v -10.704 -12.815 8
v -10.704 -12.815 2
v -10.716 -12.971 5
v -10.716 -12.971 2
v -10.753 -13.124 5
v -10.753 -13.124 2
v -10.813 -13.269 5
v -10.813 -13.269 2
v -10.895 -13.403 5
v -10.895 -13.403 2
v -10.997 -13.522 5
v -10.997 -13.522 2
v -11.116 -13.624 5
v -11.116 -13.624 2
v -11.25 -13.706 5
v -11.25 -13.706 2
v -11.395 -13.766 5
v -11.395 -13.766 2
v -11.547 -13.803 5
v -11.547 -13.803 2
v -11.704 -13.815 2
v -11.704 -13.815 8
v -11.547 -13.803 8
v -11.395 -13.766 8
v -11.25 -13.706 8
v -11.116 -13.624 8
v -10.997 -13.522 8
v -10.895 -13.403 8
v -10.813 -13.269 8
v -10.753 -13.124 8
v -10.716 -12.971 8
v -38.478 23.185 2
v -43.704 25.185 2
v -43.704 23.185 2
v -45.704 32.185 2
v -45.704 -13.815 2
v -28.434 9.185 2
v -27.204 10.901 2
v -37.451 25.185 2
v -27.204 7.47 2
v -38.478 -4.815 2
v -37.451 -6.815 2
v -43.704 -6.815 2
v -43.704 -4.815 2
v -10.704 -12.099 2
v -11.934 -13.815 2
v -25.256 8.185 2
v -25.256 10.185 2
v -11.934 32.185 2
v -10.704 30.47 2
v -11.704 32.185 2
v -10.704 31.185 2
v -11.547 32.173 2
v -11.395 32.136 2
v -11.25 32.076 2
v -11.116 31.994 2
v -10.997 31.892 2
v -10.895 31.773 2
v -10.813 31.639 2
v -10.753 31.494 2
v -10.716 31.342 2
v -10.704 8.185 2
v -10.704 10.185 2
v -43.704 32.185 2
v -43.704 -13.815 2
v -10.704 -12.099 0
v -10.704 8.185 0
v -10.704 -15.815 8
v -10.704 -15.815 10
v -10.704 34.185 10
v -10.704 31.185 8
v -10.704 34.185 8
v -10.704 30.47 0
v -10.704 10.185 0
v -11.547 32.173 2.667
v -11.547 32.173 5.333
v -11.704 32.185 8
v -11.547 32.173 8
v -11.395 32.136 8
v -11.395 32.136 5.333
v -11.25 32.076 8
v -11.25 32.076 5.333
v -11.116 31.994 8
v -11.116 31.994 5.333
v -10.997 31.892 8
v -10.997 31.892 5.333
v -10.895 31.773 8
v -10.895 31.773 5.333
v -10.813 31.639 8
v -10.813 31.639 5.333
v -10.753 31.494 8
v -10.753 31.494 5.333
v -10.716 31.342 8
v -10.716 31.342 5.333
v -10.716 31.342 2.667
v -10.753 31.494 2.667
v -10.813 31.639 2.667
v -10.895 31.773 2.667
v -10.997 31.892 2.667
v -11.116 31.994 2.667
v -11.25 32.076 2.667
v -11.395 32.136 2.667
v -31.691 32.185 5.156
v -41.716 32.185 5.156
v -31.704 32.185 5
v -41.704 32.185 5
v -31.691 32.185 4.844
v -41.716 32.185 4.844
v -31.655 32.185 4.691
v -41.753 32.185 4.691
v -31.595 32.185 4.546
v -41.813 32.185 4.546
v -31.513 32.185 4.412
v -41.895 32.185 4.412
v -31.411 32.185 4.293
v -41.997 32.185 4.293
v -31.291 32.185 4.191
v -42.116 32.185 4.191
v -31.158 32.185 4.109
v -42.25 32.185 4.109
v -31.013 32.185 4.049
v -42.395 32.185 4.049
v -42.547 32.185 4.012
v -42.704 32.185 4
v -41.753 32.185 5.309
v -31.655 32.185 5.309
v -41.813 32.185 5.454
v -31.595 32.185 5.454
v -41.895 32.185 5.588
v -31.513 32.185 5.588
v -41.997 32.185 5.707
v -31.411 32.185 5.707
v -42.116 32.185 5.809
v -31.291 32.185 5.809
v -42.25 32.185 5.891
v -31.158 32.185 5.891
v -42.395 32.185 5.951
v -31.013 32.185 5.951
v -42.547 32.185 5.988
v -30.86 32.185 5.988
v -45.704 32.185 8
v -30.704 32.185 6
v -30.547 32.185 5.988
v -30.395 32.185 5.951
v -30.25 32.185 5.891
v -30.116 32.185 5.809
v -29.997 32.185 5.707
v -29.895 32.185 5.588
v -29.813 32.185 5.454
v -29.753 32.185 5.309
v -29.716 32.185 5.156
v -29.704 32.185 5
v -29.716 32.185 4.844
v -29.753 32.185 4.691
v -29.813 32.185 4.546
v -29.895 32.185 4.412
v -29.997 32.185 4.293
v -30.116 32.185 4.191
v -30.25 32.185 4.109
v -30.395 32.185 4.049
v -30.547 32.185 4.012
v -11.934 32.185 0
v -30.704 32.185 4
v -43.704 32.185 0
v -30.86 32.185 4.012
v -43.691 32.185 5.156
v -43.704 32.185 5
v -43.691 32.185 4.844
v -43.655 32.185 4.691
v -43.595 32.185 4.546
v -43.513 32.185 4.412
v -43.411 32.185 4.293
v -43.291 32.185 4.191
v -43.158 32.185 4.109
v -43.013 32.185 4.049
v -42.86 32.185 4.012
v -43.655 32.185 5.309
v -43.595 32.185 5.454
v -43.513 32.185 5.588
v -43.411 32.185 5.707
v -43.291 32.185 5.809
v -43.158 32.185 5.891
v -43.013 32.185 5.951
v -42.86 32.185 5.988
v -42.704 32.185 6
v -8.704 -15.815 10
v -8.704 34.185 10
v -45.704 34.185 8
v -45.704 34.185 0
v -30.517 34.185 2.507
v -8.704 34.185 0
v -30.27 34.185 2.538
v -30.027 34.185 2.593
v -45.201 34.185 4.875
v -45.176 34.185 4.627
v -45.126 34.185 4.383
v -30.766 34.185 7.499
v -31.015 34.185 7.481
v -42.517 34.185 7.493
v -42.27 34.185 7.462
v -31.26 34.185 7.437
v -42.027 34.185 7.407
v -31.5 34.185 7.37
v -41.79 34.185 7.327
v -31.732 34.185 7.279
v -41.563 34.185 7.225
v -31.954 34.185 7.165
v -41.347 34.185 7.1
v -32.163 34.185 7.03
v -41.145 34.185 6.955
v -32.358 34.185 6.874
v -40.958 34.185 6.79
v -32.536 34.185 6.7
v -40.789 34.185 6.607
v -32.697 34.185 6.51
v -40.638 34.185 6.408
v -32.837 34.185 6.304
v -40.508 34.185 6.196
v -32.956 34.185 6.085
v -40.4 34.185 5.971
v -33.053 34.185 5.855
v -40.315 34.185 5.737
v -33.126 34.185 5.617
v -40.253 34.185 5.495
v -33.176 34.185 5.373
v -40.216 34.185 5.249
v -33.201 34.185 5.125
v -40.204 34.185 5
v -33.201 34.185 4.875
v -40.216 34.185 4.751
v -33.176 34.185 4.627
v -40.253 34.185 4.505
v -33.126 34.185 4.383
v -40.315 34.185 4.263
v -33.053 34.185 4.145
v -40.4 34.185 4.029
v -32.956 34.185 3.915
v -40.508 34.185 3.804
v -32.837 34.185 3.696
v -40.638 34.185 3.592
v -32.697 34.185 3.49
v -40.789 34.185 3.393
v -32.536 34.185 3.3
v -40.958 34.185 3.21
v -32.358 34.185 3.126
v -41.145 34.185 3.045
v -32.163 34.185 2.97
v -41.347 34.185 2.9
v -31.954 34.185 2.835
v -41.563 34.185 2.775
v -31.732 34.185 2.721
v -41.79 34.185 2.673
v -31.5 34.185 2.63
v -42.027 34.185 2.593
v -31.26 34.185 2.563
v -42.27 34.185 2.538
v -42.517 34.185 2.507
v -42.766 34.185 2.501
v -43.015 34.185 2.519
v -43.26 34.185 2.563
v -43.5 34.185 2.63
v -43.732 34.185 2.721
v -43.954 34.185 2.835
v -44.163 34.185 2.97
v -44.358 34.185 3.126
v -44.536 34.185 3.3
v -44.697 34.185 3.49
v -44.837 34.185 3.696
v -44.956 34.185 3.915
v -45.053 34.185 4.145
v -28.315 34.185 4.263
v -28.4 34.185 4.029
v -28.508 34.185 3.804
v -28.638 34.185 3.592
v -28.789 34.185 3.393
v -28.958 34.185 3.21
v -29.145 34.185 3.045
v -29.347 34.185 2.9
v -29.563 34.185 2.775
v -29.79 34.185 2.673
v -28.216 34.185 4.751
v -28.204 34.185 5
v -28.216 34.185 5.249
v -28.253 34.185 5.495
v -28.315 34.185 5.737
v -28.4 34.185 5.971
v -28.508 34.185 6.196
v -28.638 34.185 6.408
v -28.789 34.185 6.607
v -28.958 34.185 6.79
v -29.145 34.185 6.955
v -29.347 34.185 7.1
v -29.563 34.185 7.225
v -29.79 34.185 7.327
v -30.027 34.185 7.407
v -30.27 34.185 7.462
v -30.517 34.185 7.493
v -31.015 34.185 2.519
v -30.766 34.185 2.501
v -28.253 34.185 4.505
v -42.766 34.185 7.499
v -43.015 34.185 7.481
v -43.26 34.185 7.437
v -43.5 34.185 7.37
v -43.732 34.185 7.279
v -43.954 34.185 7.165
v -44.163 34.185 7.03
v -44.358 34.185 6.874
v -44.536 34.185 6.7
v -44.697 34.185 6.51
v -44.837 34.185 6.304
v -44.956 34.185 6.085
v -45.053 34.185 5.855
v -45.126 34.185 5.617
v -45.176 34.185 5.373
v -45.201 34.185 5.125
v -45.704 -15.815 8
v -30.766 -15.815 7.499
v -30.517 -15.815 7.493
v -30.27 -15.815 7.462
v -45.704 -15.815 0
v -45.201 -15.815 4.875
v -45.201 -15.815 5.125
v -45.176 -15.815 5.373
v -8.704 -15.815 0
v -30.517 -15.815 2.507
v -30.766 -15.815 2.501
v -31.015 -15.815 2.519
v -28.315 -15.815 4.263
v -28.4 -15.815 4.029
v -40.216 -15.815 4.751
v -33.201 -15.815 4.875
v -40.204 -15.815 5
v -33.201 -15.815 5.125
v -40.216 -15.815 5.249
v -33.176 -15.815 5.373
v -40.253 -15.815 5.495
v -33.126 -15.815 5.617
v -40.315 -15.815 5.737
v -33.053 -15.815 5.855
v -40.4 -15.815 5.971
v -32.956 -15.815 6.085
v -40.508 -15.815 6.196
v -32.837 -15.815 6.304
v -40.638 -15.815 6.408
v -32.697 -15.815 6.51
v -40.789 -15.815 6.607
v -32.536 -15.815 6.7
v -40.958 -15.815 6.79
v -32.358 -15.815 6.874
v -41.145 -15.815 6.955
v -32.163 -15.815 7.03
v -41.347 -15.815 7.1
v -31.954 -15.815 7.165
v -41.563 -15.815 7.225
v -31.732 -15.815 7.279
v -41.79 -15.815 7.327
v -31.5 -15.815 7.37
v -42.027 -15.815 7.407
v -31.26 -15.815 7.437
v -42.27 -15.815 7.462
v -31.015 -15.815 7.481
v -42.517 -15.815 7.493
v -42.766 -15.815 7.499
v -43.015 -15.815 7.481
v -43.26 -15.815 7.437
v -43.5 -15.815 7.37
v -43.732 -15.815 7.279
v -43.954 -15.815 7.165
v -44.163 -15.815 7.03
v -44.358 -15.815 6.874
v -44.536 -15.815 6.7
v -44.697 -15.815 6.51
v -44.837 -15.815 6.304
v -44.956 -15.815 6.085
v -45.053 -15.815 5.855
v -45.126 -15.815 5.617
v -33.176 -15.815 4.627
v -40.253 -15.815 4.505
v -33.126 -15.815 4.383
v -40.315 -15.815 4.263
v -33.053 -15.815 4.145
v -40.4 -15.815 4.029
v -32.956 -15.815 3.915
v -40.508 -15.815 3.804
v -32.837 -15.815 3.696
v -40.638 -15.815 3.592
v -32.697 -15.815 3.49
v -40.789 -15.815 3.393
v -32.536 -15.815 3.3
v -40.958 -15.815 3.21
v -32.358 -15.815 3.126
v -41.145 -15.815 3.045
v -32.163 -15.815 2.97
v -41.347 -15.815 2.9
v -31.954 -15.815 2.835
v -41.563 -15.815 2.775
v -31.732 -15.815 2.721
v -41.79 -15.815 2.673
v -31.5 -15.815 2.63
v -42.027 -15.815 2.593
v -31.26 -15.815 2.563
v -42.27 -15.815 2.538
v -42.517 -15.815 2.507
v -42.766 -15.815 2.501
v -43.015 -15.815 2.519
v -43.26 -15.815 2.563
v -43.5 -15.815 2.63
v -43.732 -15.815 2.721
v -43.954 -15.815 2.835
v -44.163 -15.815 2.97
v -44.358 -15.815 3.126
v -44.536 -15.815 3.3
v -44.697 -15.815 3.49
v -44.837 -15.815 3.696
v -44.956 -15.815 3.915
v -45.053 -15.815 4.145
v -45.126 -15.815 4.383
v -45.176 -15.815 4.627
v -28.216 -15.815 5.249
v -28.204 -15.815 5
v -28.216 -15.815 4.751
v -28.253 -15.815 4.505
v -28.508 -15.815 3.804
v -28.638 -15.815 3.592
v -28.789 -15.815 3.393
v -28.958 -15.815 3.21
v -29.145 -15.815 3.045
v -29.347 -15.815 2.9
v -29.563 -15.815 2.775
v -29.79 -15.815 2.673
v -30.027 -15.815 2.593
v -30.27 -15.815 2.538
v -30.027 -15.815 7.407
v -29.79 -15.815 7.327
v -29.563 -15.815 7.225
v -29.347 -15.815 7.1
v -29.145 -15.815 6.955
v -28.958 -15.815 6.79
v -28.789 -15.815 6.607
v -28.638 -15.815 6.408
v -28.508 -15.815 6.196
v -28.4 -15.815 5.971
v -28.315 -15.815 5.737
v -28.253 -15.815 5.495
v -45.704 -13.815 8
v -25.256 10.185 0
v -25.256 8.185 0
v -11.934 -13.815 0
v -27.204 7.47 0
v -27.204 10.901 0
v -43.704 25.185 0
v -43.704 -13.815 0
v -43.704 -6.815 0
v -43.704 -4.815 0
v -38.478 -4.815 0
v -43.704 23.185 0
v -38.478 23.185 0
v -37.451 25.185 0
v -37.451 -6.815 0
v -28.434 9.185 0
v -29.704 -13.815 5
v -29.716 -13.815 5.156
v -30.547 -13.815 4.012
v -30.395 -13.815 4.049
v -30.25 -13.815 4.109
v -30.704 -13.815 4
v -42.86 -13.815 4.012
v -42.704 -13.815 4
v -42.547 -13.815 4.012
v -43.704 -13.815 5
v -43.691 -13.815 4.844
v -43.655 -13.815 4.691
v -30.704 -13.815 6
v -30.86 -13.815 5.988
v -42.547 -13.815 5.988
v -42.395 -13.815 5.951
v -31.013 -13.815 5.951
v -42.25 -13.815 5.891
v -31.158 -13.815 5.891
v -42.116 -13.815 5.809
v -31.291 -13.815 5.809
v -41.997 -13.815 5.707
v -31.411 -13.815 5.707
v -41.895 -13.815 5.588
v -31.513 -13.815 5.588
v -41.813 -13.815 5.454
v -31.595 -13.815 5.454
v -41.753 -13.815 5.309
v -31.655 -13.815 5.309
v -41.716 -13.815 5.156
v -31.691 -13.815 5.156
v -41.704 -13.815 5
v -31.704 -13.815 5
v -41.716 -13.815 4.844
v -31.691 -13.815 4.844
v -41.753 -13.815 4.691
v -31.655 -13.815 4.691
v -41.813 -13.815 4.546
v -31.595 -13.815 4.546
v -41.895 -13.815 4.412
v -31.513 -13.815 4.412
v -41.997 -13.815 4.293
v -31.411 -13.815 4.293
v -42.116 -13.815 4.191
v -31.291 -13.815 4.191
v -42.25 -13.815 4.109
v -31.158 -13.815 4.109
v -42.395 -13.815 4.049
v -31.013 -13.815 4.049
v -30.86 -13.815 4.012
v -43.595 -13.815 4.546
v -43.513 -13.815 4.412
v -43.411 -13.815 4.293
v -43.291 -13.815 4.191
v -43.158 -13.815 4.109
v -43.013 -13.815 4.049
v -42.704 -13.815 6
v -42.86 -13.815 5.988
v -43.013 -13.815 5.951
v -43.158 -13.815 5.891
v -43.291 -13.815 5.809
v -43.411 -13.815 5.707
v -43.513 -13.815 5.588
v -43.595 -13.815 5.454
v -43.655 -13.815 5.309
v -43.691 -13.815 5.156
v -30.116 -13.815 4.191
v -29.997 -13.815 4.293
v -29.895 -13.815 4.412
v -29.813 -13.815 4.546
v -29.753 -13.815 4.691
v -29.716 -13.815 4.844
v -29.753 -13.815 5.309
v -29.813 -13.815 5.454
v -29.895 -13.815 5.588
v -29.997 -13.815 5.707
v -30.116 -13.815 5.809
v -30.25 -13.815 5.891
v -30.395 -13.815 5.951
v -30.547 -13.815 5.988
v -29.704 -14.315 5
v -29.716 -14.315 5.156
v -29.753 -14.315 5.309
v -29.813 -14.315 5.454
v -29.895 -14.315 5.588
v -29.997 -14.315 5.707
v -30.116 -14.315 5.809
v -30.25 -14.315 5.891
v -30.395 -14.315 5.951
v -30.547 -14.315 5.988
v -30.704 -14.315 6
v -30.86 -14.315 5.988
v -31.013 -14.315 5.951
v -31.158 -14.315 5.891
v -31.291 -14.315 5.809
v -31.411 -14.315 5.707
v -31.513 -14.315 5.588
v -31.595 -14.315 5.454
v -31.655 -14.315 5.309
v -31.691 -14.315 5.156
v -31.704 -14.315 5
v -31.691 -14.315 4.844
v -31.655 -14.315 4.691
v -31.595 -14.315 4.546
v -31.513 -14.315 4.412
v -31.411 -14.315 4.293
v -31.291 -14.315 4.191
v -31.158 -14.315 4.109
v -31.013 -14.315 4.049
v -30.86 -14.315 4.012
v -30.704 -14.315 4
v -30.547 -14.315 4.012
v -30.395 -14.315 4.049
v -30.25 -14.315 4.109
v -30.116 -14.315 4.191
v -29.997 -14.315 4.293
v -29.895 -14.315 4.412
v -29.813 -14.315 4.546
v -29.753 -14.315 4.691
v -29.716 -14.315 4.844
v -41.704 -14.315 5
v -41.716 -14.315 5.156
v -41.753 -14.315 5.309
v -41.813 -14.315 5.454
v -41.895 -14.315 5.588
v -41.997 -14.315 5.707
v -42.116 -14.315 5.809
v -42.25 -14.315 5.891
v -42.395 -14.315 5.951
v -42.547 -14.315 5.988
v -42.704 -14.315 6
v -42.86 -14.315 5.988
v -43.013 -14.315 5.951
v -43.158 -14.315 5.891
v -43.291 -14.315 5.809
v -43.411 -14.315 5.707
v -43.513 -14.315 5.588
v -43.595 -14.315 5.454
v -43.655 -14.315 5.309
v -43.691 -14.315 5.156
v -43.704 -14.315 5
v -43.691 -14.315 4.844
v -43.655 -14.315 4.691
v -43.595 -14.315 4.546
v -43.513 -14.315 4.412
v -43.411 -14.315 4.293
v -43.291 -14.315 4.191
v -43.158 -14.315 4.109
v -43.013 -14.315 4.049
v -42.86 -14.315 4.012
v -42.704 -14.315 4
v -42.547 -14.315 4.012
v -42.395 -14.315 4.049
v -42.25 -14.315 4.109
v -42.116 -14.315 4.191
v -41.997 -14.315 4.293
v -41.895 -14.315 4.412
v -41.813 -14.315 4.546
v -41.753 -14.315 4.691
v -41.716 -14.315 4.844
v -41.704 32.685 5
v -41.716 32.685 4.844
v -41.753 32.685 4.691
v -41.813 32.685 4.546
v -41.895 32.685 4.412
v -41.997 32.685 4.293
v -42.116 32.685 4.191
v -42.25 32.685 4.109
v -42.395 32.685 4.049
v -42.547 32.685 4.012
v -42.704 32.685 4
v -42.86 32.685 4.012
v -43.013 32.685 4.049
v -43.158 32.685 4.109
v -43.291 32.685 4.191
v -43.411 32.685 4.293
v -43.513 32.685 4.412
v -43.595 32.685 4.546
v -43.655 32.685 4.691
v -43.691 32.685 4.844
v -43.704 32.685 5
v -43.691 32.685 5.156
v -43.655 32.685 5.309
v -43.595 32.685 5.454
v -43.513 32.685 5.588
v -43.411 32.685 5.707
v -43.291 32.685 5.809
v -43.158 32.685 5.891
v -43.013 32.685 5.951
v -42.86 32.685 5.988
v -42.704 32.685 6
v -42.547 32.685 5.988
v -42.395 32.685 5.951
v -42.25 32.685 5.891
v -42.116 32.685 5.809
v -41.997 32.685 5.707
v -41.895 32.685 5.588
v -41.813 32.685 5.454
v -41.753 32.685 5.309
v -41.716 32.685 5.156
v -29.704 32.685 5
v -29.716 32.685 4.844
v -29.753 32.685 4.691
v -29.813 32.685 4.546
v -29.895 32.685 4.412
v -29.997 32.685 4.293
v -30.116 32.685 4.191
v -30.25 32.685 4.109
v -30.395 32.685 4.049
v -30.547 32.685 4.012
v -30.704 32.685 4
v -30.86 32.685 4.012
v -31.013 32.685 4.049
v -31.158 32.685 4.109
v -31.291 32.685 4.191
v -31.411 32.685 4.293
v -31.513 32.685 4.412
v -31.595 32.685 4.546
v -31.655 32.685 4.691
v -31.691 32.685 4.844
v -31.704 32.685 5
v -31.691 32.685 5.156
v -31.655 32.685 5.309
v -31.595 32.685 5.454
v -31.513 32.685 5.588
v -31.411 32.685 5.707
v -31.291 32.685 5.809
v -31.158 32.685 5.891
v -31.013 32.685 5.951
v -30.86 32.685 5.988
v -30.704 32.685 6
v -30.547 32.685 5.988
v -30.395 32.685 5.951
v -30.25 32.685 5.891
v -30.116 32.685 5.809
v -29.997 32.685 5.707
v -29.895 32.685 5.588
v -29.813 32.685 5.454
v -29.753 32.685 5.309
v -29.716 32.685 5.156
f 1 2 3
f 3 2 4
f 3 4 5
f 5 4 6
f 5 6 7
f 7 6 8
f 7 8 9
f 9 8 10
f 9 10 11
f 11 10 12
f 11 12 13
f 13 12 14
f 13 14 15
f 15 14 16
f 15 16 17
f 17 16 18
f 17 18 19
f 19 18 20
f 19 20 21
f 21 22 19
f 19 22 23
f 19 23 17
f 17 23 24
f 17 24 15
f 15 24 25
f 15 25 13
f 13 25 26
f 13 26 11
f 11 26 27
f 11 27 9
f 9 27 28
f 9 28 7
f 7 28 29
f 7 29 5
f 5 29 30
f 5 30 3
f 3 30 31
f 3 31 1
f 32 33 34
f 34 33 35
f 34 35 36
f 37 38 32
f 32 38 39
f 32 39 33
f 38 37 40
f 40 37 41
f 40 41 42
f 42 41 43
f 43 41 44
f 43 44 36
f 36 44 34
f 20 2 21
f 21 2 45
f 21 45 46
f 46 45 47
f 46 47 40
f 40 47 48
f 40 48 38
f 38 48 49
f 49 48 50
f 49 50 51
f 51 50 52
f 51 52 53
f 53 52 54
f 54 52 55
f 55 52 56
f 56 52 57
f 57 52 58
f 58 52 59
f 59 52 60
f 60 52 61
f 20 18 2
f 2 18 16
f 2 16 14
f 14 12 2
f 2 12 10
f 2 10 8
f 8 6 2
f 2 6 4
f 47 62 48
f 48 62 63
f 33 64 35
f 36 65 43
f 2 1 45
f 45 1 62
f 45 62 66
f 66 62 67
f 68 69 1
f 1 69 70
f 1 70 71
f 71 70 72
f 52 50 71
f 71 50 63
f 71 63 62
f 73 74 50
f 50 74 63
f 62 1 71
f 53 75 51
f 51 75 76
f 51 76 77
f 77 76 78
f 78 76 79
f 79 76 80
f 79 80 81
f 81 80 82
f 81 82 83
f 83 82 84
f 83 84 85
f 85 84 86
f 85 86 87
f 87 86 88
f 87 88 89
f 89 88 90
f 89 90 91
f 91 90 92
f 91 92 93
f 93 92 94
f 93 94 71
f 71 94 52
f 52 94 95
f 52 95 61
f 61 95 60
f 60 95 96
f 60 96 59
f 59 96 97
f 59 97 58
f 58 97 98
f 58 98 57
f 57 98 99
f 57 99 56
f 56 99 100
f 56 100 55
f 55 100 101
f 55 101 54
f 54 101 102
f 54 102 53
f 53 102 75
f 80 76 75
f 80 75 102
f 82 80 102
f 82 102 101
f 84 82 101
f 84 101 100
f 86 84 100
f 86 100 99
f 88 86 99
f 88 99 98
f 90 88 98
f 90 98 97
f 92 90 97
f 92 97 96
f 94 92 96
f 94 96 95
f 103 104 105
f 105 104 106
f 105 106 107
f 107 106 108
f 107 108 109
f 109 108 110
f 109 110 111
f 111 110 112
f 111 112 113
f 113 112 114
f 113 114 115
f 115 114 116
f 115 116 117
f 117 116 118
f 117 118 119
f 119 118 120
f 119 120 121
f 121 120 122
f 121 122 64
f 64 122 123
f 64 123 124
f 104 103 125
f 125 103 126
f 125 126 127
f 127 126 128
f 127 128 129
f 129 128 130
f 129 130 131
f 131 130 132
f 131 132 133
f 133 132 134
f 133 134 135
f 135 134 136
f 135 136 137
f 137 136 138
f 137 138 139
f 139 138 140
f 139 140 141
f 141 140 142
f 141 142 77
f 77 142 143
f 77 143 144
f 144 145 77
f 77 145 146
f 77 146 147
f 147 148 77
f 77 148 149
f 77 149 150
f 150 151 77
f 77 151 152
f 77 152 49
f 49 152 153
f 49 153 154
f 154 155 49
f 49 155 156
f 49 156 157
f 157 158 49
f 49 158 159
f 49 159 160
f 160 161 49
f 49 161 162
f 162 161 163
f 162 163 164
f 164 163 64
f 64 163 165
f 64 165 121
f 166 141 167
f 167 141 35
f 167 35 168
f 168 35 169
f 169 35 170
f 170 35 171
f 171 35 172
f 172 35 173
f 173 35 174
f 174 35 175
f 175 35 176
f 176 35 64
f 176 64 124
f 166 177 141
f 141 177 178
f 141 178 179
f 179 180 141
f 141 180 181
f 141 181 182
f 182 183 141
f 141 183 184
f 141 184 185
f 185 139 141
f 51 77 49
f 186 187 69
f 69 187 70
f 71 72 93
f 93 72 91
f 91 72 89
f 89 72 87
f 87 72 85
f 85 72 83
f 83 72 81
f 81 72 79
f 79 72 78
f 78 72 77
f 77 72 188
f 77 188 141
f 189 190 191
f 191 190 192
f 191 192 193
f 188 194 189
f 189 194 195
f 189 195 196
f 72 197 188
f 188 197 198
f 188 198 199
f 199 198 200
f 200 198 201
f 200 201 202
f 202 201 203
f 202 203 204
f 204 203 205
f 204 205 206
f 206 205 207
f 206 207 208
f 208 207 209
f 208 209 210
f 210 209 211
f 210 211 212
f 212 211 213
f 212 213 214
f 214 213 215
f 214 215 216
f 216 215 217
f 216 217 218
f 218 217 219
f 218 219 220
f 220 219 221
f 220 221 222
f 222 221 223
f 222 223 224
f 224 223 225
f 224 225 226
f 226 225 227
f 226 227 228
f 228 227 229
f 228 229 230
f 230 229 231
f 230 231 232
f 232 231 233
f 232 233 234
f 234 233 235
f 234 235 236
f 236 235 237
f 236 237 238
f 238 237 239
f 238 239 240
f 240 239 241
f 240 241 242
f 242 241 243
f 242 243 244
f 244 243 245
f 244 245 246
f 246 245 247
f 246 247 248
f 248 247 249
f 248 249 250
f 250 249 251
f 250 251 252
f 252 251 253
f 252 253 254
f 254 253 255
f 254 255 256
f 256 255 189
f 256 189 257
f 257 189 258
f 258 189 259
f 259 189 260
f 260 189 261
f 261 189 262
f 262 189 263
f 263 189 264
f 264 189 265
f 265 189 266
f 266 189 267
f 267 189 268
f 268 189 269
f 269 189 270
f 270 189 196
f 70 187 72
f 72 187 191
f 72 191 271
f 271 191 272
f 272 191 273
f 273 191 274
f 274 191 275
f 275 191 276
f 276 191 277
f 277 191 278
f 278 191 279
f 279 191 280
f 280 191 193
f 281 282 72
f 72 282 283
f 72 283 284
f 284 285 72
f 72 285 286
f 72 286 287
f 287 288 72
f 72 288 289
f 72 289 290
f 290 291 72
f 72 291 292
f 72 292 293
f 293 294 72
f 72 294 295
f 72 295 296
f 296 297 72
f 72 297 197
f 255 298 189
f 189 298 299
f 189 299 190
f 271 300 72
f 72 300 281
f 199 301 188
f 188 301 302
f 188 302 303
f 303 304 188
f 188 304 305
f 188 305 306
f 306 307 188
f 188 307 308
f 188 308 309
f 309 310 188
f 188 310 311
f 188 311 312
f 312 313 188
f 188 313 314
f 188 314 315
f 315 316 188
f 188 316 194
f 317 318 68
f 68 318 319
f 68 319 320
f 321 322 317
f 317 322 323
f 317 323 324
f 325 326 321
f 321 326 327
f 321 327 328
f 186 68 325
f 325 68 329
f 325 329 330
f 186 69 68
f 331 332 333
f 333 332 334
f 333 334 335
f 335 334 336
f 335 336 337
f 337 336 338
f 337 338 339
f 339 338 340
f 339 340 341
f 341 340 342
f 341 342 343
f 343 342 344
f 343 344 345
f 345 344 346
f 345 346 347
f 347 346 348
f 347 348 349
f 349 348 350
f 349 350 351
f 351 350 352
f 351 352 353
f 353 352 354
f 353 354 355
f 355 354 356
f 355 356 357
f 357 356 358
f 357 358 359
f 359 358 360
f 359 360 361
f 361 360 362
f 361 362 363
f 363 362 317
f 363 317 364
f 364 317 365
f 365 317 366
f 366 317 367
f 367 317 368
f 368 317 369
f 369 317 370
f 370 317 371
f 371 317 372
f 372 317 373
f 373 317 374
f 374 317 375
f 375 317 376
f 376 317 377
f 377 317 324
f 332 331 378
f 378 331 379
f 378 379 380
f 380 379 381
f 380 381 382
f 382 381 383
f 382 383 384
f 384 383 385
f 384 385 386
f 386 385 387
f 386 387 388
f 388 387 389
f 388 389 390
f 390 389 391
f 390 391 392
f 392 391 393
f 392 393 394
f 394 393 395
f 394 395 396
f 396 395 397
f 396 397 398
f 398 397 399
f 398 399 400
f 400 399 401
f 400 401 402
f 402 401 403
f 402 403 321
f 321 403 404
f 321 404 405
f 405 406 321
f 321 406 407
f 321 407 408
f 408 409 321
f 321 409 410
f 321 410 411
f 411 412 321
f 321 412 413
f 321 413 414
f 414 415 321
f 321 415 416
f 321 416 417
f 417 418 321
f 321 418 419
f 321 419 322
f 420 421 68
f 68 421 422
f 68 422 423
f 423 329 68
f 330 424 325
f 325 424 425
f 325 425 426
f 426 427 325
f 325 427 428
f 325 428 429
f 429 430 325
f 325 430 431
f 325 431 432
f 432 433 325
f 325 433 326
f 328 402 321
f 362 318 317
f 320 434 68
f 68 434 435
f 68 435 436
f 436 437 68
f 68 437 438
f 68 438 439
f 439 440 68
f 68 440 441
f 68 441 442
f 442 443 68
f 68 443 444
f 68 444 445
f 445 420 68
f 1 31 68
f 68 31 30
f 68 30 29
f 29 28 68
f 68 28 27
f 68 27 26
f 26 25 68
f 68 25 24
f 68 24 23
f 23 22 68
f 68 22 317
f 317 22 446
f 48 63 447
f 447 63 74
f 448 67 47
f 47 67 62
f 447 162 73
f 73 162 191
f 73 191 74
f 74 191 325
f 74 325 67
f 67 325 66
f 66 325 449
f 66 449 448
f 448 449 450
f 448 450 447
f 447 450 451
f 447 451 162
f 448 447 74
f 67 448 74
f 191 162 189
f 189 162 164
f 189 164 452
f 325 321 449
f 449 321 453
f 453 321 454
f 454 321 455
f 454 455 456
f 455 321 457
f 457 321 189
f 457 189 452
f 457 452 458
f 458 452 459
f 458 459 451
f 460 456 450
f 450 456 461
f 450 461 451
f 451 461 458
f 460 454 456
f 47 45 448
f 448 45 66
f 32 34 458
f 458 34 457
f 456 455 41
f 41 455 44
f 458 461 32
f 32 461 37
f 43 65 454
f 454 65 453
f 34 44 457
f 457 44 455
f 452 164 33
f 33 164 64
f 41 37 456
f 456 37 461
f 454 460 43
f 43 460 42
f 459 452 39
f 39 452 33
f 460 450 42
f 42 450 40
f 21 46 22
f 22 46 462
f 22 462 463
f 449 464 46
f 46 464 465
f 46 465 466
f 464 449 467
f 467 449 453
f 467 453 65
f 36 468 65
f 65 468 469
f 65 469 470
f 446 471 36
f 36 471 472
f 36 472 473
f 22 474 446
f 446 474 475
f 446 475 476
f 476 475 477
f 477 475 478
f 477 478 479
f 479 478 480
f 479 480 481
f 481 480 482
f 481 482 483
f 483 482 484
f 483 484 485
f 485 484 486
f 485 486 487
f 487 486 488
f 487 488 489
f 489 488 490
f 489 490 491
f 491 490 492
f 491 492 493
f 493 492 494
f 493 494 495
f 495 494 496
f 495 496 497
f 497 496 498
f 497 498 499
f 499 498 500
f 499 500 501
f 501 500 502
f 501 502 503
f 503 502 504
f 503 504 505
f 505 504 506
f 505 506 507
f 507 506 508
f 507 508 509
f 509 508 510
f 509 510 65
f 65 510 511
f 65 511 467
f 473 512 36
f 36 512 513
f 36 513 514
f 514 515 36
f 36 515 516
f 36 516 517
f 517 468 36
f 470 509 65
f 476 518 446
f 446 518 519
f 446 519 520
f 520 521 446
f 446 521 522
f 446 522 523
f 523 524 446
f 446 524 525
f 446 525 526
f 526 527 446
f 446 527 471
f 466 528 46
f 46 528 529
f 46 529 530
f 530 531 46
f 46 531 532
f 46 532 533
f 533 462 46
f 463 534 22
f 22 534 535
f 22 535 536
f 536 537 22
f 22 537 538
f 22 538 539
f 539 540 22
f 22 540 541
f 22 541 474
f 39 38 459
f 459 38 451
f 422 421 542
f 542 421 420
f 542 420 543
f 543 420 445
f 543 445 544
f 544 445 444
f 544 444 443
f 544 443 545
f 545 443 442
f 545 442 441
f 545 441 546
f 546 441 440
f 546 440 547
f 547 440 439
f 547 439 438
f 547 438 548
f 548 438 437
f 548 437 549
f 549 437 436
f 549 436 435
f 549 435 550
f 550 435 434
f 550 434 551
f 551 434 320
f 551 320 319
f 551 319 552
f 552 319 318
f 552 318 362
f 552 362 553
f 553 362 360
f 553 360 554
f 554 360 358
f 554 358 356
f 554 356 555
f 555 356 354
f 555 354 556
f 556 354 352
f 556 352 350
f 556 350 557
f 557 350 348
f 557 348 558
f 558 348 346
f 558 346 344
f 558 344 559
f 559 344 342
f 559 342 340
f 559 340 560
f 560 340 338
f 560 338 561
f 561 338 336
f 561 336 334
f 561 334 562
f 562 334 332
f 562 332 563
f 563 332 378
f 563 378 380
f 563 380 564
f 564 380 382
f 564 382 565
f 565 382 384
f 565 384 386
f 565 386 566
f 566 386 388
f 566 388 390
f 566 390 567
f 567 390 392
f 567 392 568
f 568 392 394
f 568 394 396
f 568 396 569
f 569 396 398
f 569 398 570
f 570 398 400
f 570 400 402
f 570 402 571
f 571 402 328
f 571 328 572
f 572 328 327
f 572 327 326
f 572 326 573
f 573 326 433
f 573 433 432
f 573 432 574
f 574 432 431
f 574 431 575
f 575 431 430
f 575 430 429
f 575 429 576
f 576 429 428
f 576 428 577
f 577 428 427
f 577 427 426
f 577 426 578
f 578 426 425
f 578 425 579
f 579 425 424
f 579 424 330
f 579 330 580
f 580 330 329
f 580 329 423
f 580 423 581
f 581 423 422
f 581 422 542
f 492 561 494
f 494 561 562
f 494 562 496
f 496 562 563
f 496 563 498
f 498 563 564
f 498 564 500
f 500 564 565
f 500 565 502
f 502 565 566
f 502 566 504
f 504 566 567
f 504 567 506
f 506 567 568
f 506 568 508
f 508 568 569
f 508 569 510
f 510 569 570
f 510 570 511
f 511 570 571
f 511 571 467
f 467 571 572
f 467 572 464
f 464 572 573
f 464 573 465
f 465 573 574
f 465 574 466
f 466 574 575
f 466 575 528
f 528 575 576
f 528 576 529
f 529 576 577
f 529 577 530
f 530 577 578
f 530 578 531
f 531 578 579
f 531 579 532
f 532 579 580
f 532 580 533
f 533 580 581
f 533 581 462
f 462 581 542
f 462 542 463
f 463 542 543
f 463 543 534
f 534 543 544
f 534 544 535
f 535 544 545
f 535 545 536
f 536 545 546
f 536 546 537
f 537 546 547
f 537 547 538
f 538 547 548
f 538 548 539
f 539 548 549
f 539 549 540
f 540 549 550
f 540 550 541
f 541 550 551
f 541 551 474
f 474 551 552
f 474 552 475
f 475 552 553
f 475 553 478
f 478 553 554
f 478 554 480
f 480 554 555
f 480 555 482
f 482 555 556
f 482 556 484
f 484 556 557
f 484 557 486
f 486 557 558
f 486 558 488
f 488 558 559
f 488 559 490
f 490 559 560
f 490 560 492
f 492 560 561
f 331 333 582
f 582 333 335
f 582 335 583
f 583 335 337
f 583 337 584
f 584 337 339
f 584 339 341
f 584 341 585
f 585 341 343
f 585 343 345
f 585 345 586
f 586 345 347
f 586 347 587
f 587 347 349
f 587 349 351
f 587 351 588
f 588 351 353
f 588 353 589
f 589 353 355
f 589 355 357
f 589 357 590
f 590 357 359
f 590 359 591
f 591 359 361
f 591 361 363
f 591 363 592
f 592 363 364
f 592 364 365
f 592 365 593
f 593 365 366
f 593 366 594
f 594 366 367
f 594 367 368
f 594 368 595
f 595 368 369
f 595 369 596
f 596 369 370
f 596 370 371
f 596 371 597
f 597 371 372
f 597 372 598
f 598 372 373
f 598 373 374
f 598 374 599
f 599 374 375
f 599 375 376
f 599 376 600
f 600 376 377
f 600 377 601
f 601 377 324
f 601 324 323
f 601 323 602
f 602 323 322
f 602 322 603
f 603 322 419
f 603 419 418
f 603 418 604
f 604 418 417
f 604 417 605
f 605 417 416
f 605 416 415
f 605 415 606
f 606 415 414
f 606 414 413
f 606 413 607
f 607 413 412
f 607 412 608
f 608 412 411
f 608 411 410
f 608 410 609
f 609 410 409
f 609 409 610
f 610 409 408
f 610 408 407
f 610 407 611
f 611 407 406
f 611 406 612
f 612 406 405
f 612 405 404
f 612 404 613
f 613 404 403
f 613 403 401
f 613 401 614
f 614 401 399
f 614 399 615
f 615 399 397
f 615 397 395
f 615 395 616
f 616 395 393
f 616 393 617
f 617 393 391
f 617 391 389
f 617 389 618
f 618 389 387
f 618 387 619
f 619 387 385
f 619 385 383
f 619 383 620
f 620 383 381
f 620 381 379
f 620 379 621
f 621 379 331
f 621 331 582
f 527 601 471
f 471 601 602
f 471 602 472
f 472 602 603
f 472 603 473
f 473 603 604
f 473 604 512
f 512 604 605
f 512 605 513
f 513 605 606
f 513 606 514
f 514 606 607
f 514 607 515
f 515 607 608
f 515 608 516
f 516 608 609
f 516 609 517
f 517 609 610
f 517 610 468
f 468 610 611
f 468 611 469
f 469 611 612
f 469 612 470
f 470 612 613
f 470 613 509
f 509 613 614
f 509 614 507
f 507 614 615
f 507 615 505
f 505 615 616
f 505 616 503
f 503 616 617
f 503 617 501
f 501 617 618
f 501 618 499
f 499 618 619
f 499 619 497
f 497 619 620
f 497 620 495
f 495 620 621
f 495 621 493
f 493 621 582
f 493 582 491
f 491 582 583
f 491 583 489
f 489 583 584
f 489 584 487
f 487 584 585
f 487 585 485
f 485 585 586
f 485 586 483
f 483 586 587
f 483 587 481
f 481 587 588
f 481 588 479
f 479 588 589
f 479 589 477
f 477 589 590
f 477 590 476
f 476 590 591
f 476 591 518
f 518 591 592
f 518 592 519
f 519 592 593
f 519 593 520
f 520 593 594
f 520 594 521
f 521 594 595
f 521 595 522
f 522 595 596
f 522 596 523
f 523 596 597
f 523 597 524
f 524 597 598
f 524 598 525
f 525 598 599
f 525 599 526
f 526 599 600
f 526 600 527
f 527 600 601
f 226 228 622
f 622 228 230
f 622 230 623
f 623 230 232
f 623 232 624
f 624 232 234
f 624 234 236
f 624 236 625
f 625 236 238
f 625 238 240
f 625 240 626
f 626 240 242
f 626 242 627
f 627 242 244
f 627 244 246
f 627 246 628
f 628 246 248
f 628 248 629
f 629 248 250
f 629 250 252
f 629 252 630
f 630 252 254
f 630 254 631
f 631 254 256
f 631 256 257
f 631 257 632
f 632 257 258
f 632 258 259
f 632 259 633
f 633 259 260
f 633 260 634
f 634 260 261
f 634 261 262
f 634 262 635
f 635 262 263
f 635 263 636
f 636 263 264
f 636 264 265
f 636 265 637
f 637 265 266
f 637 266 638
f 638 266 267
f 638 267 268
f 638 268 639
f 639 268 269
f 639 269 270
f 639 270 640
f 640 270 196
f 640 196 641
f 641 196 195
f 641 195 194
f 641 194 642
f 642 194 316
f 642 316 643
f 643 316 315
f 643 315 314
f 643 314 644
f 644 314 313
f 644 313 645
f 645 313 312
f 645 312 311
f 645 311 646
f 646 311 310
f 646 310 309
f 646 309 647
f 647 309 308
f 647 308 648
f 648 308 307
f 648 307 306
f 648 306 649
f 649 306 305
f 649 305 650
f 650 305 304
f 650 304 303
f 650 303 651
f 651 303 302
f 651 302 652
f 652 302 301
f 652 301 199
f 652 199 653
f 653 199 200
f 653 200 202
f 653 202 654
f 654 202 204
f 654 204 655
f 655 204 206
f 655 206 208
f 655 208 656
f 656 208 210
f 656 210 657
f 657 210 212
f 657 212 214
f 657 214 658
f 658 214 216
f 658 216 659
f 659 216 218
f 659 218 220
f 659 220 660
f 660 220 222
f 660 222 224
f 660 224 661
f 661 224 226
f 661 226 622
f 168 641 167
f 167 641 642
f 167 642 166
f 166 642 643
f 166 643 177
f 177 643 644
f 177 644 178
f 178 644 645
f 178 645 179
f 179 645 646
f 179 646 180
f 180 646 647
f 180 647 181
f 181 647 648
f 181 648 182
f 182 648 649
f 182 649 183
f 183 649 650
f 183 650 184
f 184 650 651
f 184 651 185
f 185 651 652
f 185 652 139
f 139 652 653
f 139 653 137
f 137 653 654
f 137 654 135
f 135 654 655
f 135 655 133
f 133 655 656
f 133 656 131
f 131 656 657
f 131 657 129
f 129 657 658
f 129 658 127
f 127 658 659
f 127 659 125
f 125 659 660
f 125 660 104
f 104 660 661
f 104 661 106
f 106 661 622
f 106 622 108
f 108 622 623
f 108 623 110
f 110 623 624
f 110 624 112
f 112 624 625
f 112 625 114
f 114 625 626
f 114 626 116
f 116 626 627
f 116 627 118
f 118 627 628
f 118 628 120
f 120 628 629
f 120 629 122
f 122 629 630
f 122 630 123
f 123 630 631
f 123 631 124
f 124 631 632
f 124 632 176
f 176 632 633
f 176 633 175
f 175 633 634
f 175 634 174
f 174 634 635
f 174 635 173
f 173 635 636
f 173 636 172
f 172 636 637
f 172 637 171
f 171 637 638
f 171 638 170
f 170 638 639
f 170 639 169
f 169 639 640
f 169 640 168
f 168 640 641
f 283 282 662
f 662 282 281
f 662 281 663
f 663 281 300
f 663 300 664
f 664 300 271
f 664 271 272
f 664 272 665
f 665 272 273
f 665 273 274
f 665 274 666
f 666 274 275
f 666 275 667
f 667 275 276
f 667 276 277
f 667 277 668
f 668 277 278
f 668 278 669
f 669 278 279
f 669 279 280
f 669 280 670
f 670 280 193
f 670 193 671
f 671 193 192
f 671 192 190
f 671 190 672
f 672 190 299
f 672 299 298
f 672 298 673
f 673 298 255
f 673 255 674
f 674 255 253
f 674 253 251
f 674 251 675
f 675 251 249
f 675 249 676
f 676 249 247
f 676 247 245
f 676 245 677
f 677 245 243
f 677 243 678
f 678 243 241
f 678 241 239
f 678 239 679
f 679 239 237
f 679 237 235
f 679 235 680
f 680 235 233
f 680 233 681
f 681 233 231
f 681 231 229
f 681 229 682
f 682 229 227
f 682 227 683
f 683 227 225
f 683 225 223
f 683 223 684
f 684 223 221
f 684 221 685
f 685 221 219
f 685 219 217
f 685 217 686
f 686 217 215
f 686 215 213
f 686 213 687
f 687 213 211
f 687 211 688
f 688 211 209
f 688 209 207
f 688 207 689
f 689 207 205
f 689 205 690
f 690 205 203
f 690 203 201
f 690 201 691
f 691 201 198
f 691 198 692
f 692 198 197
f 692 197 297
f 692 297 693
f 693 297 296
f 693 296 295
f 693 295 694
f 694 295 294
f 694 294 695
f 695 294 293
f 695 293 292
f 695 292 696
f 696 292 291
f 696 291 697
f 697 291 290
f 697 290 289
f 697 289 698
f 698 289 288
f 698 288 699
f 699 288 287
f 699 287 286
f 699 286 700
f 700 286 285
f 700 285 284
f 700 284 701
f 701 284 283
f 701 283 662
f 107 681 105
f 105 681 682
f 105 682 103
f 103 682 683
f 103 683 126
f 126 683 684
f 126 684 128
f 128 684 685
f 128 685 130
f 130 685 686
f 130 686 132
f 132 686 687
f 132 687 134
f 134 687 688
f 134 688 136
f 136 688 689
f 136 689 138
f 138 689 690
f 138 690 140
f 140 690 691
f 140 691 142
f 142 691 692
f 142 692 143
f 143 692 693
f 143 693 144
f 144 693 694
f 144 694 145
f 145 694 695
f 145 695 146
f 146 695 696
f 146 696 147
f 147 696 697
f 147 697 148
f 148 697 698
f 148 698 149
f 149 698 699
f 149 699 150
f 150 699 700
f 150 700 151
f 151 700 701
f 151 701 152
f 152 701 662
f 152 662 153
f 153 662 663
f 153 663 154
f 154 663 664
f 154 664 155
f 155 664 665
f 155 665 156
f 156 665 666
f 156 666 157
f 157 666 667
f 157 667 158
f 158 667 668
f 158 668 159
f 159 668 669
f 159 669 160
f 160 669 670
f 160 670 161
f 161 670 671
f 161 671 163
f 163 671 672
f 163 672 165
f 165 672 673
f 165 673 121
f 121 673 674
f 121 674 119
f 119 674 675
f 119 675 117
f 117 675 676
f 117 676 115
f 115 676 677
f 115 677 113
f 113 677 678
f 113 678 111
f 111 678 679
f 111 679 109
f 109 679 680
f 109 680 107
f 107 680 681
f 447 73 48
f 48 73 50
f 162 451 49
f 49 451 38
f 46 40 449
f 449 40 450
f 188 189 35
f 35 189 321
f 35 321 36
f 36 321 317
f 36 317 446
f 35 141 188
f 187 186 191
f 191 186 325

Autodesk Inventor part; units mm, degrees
ref_plane "YZ Plane" through (0, 0, 0) normal (1, 0, 0) x (0, 1, 0)
ref_plane "XZ Plane" through (0, 0, 0) normal (0, 1, 0) x (-1, 0, 0)
ref_plane "XY Plane" through (0, 0, 0) normal (0, 0, 1) x (1, 0, 0)
sketch "Sketch1" plane through (0, 0, 0) normal (0, 0, 1) x (1, 0, 0)
  line L0 (-45.7037, 34.1852) -> (-8.7037, 34.1852)
  line L1 (-8.7037, 34.1852) -> (-8.7037, -15.8148)
  line L2 (-8.7037, -15.8148) -> (-45.7037, -15.8148)
  line L3 (-45.7037, -15.8148) -> (-45.7037, 34.1852)
  line L4 (-43.7037, 32.1852) -> (-10.7037, 32.1852)
  line L5 (-10.7037, 32.1852) -> (-10.7037, -13.8148)
  line L6 (-10.7037, -13.8148) -> (-43.7037, -13.8148)
  line L7 (-43.7037, -13.8148) -> (-43.7037, 32.1852)
  point P0 (0, 0)
  dimension "d0" = 2
  dimension "d1" = 2
  dimension "d2" = 2
  dimension "d3" = 2
  dimension "d4" = 37
  dimension "d5" = 50
extrude "Extrusion1" add sketch "Sketch1" along normal blind 2
sketch "Sketch2" plane through (0, 0, 2) normal (0, 0, 1) x (1, 0, 0)
  line L0 (-43.7037, 32.1852) -> (-10.7037, 32.1852) projected
  line L1 (-10.7037, -13.8148) -> (-43.7037, -13.8148) projected
  line L2 (-43.7037, 32.1852) -> (-10.7037, -13.8148) construction
  line L3 (-44.5162, 31.6023) -> (-11.5162, -14.3977)
  line L4 (-9.8912, -13.2319) -> (-42.8912, 32.7681)
  arc A0 (-42.8912, 32.7681) -> (-44.5162, 31.6023) centre (-43.7037, 32.1852) ccw
  arc A1 (-11.5162, -14.3977) -> (-9.8912, -13.2319) centre (-10.7037, -13.8148) ccw
  line L5 (-10.7037, 32.1852) -> (-10.7037, -13.8148) projected
  line L6 (-10.7037, 32.1852) -> (-43.7037, -13.8148) construction
  line L7 (-11.5162, 32.7681) -> (-44.5162, -13.2319)
  line L8 (-42.8912, -14.3977) -> (-9.8912, 31.6023)
  arc A2 (-9.8912, 31.6023) -> (-11.5162, 32.7681) centre (-10.7037, 32.1852) ccw
  arc A3 (-44.5162, -13.2319) -> (-42.8912, -14.3977) centre (-43.7037, -13.8148) ccw
  point P0 (0, 0)
  point P1 (-27.2037, 9.1852)
  point P2 (-27.2037, 9.1852)
  point P3 (-25.973, 9.1852)
  point P4 (-27.2037, 10.9007)
  point P5 (-28.4344, 9.1852)
  point P6 (-27.2037, 7.4696)
  dimension "d8" = 2
  dimension "d9" = 2
extrude "Extrusion2" add sketch "Sketch2" against normal blind 2 contours L4 L7 L3 A0 | L7 A2 L8 L5 L0 | L0 L5 L8 L4 L7 | L4 L8 L3 L7 | L4 L5 L1 L3 L8 | L3 L8 A3 L7 | L4 A1 L3 L1 L5
sketch "Sketch3" plane through (0, 0, 2) normal (0, 0, 1) x (1, 0, 0)
  line L0 (-45.7037, 34.1852) -> (-45.7037, -15.8148) projected
  line L1 (-8.7037, -15.8148) -> (-8.7037, 34.1852) projected
  line L2 (-45.7037, 34.1852) -> (-8.7037, 34.1852)
  line L3 (-8.7037, 34.1852) -> (-8.7037, 32.1852)
  line L4 (-8.7037, 32.1852) -> (-45.7037, 32.1852)
  line L5 (-45.7037, 32.1852) -> (-45.7037, 34.1852)
  line L6 (-45.7037, -15.8148) -> (-8.7037, -15.8148)
  line L7 (-8.7037, -15.8148) -> (-8.7037, -13.8148)
  line L8 (-8.7037, -13.8148) -> (-45.7037, -13.8148)
  line L9 (-45.7037, -13.8148) -> (-45.7037, -15.8148)
  line L10 (-42.473, 32.1852) -> (-11.9344, 32.1852) projected
  line L11 (-11.9344, -13.8148) -> (-42.473, -13.8148) projected
  line L12 (-45.7037, -15.8148) -> (-8.7037, -15.8148) projected
  point P0 (0, 0)
  point P1 (-8.7037, 34.1852)
extrude "Extrusion3" add sketch "Sketch3" along normal blind 6 contours L2 L1 L4 L0 | L8 L1 L6 L0
sketch "Sketch4" plane through (-45.7037, 34.1852, 0) normal (0, 1, 0) x (1, 0, 0)
  line L0 (37, -8) -> (0, -8) projected
  line L1 (0, 0) -> (0, -8) projected
  point P0 (45.7037, 0)
  point P1 (3, -5)
  point P2 (15, -5)
  dimension "d14" = 3
  dimension "d15" = 3
  dimension "d16" = 3
  dimension "d17" = 12
hole "Hole1" at (-42.7037, 34.1852, 5) at (-30.7037, 34.1852, 5) direction (0, -1, 0) diameter 2 depth 10 tip angle 118 countersink diameter 5 countersink angle 90
sketch "Sketch5" plane through (-45.7037, -15.8148, 0) normal (0, -1, 0) x (1, 0, 0)
  circle A0 centre (15, 5) radius 1 projected
  circle A1 centre (3, 5) radius 1 projected
  point P0 (45.7037, 0)
hole "Hole2" at (-30.7037, -15.8148, 5) at (-42.7037, -15.8148, 5) direction (0, 1, 0) diameter 2 depth 10 tip angle 118 countersink diameter 5 countersink angle 90
sketch "Sketch6" plane through (0, 0, 0) normal (0, 0, -1) x (-1, 0, 0)
  line L0 (11.9344, -13.8148) -> (42.473, -13.8148) projected
  line L1 (43.7037, -12.0993) -> (43.7037, 30.4696) projected
  line L2 (17.7037, -13.8148) -> (43.7037, -13.8148)
  line L3 (43.7037, -13.8148) -> (43.7037, -6.8148)
  line L4 (43.7037, -6.8148) -> (17.7037, -6.8148)
  line L5 (17.7037, -6.8148) -> (17.7037, -13.8148)
  line L6 (17.7037, 32.1852) -> (43.7037, 32.1852)
  line L7 (43.7037, 32.1852) -> (43.7037, 25.1852)
  line L8 (43.7037, 25.1852) -> (17.7037, 25.1852)
  line L9 (17.7037, 25.1852) -> (17.7037, 32.1852)
  line L10 (42.473, 32.1852) -> (11.9344, 32.1852) projected
  line L11 (45.7037, 34.1852) -> (45.7037, -15.8148) projected
  line L12 (8.7037, 34.1852) -> (45.7037, 34.1852) projected
  line L13 (45.7037, -15.8148) -> (8.7037, -15.8148) projected
  point P0 (0, 0)
  dimension "d35" = 28
  dimension "d36" = 28
  dimension "d37" = 9
  dimension "d38" = 9
extrude "Extrusion4" cut sketch "Sketch6" against normal blind 2
sketch "Sketch7" plane through (0, 0, 0) normal (0, 0, -1) x (-1, 0, 0)
  line L0 (39.9127, -6.8148) -> (37.4513, -6.8148) projected
  line L1 (43.7037, -13.8148) -> (43.7037, 32.1852) projected
  line L2 (37.4513, -6.8148) -> (43.7037, -6.8148)
  line L3 (43.7037, -6.8148) -> (43.7037, -4.8148)
  line L4 (43.7037, -4.8148) -> (37.4513, -4.8148)
  line L5 (37.4513, -4.8148) -> (37.4513, -6.8148)
  line L6 (37.4513, 25.1852) -> (39.9127, 25.1852) projected
  line L7 (37.4513, 25.1852) -> (43.7037, 25.1852)
  line L8 (43.7037, 25.1852) -> (43.7037, 23.1852)
  line L9 (43.7037, 23.1852) -> (37.4513, 23.1852)
  line L10 (37.4513, 23.1852) -> (37.4513, 25.1852)
  point P0 (0, 0)
  dimension "d41" = 2
  dimension "d42" = 2
extrude "Extrusion5" add sketch "Sketch7" against normal blind 2
sketch "Sketch8" plane through (0, 0, 0) normal (0, 0, -1) x (-1, 0, 0)
  line L0 (10.7037, -12.0993) -> (25.973, 9.1852) projected
  line L1 (25.973, 9.1852) -> (10.7037, 9.1852) construction
  line L2 (10.7037, 30.4696) -> (10.7037, -12.0993) projected
  line L3 (25.973, 10.1852) -> (10.7037, 10.1852)
  line L4 (10.7037, 8.1852) -> (25.973, 8.1852)
  arc A0 (25.973, 8.1852) -> (25.973, 10.1852) centre (25.973, 9.1852) ccw
  arc A1 (10.7037, 10.1852) -> (10.7037, 8.1852) centre (10.7037, 9.1852) ccw
  point P0 (0, 0)
  point P1 (18.3383, 9.1852)
  dimension "d45" = 2
extrude "Extrusion6" add sketch "Sketch8" against normal blind 2 contours L4 L2 L3 A0 | A1 L2
sketch "Sketch9" plane through (-8.7037, -15.8148, 0) normal (1, 0, 0) x (0, 0, -1)
  line L0 (0, 50) -> (-8, 50) projected
  line L1 (0, 0) -> (-8, 0) projected
  line L2 (0, 50) -> (-10, 50)
  line L3 (-10, 50) -> (-10, 0)
  line L4 (-10, 0) -> (0, 0)
  line L5 (0, 0) -> (0, 50)
  point P0 (0, 15.8148)
  dimension "d48" = 10
extrude "Extrusion7" add sketch "Sketch9" against normal blind 2
fillet "Fillet1" radius 1 2 edges at (-10.7037, 32.1852, 5) (-10.7037, -13.8148, 5)
properties part number "face-1"
